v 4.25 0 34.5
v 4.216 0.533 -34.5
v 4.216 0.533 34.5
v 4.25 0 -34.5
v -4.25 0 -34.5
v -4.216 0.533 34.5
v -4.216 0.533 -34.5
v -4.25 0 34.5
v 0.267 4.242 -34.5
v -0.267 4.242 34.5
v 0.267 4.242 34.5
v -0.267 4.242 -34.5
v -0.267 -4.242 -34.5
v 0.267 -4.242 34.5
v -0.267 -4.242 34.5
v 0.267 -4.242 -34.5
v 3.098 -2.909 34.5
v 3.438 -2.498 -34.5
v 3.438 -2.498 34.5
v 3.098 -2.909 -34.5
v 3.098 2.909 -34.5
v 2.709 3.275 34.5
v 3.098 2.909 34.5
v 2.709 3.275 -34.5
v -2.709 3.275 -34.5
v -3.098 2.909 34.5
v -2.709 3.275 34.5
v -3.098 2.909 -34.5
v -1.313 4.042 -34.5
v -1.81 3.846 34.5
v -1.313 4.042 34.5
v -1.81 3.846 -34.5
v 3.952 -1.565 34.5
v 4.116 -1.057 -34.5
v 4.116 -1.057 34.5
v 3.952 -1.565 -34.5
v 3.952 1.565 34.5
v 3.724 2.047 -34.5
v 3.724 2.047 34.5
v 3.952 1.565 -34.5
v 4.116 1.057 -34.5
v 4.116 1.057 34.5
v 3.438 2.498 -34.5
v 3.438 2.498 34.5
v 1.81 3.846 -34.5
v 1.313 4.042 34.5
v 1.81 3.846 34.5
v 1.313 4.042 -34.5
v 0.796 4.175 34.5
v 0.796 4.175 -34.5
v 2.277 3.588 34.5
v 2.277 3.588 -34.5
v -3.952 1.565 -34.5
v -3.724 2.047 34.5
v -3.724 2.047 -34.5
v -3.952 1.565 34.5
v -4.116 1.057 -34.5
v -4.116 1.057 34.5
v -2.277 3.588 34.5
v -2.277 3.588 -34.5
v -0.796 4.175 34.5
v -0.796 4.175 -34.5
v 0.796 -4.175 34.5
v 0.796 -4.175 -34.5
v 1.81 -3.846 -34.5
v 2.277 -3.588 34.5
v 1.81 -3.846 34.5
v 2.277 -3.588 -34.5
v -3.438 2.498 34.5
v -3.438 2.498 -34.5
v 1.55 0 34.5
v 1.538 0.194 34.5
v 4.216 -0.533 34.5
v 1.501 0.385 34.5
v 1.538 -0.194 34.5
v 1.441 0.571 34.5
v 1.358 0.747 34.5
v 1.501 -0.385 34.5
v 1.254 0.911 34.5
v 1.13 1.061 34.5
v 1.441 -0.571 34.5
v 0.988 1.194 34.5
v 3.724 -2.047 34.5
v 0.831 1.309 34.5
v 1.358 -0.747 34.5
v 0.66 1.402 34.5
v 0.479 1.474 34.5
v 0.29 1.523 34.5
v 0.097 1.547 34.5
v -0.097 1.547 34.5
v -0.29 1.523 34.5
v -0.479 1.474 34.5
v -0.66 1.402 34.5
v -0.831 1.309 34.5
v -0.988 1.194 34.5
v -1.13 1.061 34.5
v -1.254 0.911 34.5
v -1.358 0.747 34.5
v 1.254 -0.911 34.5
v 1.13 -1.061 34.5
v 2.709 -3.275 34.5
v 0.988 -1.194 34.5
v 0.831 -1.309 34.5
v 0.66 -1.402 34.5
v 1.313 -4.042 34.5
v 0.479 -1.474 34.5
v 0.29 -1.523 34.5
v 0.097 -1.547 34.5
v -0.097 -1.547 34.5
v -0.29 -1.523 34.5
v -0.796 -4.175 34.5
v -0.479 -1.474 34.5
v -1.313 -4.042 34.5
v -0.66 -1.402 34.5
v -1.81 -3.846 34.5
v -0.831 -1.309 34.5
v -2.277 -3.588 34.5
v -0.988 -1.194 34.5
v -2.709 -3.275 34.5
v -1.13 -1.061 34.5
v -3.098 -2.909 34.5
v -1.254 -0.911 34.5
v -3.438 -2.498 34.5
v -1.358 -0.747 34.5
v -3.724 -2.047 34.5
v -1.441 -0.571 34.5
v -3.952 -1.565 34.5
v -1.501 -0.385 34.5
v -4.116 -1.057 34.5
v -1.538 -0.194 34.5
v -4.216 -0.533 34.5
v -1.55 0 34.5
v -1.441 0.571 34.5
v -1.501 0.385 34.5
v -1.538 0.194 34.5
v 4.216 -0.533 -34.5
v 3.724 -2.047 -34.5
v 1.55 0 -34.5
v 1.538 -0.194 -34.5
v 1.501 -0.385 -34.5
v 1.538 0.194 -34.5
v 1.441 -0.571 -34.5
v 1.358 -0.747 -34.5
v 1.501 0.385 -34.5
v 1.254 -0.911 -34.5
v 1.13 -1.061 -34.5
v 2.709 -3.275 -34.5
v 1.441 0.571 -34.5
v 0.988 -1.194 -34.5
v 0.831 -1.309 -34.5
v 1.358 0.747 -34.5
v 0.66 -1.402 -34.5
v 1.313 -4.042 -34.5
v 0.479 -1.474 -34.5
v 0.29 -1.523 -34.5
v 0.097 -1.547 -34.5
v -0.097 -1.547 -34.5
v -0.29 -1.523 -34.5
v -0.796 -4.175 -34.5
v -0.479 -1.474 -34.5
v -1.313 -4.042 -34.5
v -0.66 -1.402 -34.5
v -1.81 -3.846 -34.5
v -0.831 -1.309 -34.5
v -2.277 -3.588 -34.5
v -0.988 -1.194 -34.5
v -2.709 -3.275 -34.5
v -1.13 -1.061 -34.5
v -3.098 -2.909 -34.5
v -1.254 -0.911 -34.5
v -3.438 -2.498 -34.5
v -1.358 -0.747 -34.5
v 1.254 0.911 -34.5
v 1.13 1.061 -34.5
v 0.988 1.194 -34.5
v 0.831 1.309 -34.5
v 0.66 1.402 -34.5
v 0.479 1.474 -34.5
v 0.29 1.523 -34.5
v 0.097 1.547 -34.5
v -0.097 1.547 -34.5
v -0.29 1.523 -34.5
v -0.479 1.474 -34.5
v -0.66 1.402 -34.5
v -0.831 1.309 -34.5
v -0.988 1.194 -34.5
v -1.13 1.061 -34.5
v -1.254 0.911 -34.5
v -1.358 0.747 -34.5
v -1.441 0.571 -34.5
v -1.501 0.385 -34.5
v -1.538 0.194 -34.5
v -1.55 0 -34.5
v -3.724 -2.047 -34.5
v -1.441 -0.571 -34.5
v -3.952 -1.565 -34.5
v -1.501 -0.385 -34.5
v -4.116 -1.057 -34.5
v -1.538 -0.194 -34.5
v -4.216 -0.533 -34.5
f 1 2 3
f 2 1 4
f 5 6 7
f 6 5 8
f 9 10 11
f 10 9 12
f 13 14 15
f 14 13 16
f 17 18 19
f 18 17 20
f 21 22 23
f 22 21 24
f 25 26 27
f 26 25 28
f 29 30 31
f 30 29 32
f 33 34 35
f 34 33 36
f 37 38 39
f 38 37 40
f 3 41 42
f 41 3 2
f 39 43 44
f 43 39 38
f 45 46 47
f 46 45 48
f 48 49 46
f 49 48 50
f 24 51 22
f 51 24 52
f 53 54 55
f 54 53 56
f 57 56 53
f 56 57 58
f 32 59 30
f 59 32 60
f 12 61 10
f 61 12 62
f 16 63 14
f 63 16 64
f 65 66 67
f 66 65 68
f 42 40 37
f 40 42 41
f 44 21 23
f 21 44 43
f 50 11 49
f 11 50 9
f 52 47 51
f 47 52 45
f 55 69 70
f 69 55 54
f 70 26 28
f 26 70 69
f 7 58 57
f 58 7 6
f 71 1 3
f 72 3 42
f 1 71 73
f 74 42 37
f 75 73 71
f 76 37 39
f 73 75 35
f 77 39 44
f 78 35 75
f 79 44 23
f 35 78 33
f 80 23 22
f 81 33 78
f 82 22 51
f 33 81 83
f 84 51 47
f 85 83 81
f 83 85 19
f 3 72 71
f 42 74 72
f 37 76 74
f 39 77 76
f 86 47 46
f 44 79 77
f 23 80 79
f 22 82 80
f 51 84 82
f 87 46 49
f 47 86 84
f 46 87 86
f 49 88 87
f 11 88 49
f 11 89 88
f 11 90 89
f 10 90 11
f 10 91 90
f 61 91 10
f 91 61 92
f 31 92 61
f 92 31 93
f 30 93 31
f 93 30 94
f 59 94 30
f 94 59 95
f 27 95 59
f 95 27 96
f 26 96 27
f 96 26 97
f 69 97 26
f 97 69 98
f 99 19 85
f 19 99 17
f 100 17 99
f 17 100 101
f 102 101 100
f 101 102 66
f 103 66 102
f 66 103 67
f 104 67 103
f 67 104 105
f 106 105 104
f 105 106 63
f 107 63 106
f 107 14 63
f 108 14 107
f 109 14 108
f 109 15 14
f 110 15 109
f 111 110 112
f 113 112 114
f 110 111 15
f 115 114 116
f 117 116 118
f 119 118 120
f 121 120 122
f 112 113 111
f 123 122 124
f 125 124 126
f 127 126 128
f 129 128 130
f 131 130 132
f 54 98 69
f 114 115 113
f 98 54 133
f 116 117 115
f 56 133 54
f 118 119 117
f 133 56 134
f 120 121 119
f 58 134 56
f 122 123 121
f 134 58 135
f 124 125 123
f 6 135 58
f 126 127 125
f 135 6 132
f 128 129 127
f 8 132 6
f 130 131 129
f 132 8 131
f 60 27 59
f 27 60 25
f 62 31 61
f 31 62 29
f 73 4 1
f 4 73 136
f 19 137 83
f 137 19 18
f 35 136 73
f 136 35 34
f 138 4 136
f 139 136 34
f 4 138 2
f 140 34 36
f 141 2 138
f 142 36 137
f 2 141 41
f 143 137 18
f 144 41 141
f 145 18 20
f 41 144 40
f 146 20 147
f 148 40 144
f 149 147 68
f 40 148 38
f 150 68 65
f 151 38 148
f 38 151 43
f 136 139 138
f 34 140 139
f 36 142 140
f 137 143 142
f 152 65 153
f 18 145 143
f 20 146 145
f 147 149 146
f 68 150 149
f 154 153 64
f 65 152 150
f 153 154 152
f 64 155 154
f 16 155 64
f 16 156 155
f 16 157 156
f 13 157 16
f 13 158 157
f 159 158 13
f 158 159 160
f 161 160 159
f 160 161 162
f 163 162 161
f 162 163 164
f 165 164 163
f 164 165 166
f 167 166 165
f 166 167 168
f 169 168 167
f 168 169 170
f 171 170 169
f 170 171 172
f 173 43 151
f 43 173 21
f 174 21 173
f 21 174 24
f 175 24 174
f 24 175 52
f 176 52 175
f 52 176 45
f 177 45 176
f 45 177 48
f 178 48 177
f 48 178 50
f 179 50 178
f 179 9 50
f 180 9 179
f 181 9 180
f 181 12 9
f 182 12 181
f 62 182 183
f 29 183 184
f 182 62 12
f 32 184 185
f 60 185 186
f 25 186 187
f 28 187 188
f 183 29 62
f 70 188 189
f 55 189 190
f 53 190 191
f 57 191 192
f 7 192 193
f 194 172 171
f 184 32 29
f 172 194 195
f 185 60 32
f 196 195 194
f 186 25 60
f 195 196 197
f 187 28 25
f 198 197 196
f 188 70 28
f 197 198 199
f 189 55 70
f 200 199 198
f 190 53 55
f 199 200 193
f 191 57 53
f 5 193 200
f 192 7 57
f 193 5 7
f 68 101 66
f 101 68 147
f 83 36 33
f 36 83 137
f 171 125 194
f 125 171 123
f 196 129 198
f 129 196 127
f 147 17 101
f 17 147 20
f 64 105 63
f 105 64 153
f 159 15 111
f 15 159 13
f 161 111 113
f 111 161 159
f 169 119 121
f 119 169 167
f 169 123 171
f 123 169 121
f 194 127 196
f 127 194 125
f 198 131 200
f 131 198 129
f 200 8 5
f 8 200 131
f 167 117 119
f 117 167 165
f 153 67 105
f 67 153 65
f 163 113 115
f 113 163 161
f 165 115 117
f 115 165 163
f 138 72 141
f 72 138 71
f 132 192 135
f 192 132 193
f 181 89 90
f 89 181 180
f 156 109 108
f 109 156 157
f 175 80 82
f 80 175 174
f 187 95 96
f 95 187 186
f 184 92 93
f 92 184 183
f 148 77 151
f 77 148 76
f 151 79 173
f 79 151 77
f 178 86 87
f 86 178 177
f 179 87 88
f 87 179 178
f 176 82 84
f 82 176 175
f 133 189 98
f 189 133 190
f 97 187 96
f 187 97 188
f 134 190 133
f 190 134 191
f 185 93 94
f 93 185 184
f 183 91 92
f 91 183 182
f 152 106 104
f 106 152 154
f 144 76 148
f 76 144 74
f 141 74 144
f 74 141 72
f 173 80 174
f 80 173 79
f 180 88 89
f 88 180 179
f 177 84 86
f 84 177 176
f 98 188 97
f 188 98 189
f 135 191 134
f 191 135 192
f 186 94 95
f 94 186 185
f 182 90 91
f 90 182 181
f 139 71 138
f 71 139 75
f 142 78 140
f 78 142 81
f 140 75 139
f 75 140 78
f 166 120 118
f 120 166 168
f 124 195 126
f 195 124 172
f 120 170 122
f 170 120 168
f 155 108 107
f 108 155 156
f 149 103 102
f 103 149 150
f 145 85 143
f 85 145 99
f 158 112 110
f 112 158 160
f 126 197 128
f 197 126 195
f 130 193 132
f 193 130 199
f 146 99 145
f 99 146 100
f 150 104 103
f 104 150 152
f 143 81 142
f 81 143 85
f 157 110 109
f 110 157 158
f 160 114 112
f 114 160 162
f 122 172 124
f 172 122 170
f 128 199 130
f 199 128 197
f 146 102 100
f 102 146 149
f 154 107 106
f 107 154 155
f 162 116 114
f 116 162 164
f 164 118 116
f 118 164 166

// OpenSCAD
$fn = 50;


difference() {
	union() {
		translate(v = [0, 0, -34.5000000000]) {
			cylinder(h = 69, r = 4.2500000000);
		}
	}
	union() {
		translate(v = [0, 0, -100.0000000000]) {
			cylinder(h = 200, r = 1.5500000000);
		}
	}
}
